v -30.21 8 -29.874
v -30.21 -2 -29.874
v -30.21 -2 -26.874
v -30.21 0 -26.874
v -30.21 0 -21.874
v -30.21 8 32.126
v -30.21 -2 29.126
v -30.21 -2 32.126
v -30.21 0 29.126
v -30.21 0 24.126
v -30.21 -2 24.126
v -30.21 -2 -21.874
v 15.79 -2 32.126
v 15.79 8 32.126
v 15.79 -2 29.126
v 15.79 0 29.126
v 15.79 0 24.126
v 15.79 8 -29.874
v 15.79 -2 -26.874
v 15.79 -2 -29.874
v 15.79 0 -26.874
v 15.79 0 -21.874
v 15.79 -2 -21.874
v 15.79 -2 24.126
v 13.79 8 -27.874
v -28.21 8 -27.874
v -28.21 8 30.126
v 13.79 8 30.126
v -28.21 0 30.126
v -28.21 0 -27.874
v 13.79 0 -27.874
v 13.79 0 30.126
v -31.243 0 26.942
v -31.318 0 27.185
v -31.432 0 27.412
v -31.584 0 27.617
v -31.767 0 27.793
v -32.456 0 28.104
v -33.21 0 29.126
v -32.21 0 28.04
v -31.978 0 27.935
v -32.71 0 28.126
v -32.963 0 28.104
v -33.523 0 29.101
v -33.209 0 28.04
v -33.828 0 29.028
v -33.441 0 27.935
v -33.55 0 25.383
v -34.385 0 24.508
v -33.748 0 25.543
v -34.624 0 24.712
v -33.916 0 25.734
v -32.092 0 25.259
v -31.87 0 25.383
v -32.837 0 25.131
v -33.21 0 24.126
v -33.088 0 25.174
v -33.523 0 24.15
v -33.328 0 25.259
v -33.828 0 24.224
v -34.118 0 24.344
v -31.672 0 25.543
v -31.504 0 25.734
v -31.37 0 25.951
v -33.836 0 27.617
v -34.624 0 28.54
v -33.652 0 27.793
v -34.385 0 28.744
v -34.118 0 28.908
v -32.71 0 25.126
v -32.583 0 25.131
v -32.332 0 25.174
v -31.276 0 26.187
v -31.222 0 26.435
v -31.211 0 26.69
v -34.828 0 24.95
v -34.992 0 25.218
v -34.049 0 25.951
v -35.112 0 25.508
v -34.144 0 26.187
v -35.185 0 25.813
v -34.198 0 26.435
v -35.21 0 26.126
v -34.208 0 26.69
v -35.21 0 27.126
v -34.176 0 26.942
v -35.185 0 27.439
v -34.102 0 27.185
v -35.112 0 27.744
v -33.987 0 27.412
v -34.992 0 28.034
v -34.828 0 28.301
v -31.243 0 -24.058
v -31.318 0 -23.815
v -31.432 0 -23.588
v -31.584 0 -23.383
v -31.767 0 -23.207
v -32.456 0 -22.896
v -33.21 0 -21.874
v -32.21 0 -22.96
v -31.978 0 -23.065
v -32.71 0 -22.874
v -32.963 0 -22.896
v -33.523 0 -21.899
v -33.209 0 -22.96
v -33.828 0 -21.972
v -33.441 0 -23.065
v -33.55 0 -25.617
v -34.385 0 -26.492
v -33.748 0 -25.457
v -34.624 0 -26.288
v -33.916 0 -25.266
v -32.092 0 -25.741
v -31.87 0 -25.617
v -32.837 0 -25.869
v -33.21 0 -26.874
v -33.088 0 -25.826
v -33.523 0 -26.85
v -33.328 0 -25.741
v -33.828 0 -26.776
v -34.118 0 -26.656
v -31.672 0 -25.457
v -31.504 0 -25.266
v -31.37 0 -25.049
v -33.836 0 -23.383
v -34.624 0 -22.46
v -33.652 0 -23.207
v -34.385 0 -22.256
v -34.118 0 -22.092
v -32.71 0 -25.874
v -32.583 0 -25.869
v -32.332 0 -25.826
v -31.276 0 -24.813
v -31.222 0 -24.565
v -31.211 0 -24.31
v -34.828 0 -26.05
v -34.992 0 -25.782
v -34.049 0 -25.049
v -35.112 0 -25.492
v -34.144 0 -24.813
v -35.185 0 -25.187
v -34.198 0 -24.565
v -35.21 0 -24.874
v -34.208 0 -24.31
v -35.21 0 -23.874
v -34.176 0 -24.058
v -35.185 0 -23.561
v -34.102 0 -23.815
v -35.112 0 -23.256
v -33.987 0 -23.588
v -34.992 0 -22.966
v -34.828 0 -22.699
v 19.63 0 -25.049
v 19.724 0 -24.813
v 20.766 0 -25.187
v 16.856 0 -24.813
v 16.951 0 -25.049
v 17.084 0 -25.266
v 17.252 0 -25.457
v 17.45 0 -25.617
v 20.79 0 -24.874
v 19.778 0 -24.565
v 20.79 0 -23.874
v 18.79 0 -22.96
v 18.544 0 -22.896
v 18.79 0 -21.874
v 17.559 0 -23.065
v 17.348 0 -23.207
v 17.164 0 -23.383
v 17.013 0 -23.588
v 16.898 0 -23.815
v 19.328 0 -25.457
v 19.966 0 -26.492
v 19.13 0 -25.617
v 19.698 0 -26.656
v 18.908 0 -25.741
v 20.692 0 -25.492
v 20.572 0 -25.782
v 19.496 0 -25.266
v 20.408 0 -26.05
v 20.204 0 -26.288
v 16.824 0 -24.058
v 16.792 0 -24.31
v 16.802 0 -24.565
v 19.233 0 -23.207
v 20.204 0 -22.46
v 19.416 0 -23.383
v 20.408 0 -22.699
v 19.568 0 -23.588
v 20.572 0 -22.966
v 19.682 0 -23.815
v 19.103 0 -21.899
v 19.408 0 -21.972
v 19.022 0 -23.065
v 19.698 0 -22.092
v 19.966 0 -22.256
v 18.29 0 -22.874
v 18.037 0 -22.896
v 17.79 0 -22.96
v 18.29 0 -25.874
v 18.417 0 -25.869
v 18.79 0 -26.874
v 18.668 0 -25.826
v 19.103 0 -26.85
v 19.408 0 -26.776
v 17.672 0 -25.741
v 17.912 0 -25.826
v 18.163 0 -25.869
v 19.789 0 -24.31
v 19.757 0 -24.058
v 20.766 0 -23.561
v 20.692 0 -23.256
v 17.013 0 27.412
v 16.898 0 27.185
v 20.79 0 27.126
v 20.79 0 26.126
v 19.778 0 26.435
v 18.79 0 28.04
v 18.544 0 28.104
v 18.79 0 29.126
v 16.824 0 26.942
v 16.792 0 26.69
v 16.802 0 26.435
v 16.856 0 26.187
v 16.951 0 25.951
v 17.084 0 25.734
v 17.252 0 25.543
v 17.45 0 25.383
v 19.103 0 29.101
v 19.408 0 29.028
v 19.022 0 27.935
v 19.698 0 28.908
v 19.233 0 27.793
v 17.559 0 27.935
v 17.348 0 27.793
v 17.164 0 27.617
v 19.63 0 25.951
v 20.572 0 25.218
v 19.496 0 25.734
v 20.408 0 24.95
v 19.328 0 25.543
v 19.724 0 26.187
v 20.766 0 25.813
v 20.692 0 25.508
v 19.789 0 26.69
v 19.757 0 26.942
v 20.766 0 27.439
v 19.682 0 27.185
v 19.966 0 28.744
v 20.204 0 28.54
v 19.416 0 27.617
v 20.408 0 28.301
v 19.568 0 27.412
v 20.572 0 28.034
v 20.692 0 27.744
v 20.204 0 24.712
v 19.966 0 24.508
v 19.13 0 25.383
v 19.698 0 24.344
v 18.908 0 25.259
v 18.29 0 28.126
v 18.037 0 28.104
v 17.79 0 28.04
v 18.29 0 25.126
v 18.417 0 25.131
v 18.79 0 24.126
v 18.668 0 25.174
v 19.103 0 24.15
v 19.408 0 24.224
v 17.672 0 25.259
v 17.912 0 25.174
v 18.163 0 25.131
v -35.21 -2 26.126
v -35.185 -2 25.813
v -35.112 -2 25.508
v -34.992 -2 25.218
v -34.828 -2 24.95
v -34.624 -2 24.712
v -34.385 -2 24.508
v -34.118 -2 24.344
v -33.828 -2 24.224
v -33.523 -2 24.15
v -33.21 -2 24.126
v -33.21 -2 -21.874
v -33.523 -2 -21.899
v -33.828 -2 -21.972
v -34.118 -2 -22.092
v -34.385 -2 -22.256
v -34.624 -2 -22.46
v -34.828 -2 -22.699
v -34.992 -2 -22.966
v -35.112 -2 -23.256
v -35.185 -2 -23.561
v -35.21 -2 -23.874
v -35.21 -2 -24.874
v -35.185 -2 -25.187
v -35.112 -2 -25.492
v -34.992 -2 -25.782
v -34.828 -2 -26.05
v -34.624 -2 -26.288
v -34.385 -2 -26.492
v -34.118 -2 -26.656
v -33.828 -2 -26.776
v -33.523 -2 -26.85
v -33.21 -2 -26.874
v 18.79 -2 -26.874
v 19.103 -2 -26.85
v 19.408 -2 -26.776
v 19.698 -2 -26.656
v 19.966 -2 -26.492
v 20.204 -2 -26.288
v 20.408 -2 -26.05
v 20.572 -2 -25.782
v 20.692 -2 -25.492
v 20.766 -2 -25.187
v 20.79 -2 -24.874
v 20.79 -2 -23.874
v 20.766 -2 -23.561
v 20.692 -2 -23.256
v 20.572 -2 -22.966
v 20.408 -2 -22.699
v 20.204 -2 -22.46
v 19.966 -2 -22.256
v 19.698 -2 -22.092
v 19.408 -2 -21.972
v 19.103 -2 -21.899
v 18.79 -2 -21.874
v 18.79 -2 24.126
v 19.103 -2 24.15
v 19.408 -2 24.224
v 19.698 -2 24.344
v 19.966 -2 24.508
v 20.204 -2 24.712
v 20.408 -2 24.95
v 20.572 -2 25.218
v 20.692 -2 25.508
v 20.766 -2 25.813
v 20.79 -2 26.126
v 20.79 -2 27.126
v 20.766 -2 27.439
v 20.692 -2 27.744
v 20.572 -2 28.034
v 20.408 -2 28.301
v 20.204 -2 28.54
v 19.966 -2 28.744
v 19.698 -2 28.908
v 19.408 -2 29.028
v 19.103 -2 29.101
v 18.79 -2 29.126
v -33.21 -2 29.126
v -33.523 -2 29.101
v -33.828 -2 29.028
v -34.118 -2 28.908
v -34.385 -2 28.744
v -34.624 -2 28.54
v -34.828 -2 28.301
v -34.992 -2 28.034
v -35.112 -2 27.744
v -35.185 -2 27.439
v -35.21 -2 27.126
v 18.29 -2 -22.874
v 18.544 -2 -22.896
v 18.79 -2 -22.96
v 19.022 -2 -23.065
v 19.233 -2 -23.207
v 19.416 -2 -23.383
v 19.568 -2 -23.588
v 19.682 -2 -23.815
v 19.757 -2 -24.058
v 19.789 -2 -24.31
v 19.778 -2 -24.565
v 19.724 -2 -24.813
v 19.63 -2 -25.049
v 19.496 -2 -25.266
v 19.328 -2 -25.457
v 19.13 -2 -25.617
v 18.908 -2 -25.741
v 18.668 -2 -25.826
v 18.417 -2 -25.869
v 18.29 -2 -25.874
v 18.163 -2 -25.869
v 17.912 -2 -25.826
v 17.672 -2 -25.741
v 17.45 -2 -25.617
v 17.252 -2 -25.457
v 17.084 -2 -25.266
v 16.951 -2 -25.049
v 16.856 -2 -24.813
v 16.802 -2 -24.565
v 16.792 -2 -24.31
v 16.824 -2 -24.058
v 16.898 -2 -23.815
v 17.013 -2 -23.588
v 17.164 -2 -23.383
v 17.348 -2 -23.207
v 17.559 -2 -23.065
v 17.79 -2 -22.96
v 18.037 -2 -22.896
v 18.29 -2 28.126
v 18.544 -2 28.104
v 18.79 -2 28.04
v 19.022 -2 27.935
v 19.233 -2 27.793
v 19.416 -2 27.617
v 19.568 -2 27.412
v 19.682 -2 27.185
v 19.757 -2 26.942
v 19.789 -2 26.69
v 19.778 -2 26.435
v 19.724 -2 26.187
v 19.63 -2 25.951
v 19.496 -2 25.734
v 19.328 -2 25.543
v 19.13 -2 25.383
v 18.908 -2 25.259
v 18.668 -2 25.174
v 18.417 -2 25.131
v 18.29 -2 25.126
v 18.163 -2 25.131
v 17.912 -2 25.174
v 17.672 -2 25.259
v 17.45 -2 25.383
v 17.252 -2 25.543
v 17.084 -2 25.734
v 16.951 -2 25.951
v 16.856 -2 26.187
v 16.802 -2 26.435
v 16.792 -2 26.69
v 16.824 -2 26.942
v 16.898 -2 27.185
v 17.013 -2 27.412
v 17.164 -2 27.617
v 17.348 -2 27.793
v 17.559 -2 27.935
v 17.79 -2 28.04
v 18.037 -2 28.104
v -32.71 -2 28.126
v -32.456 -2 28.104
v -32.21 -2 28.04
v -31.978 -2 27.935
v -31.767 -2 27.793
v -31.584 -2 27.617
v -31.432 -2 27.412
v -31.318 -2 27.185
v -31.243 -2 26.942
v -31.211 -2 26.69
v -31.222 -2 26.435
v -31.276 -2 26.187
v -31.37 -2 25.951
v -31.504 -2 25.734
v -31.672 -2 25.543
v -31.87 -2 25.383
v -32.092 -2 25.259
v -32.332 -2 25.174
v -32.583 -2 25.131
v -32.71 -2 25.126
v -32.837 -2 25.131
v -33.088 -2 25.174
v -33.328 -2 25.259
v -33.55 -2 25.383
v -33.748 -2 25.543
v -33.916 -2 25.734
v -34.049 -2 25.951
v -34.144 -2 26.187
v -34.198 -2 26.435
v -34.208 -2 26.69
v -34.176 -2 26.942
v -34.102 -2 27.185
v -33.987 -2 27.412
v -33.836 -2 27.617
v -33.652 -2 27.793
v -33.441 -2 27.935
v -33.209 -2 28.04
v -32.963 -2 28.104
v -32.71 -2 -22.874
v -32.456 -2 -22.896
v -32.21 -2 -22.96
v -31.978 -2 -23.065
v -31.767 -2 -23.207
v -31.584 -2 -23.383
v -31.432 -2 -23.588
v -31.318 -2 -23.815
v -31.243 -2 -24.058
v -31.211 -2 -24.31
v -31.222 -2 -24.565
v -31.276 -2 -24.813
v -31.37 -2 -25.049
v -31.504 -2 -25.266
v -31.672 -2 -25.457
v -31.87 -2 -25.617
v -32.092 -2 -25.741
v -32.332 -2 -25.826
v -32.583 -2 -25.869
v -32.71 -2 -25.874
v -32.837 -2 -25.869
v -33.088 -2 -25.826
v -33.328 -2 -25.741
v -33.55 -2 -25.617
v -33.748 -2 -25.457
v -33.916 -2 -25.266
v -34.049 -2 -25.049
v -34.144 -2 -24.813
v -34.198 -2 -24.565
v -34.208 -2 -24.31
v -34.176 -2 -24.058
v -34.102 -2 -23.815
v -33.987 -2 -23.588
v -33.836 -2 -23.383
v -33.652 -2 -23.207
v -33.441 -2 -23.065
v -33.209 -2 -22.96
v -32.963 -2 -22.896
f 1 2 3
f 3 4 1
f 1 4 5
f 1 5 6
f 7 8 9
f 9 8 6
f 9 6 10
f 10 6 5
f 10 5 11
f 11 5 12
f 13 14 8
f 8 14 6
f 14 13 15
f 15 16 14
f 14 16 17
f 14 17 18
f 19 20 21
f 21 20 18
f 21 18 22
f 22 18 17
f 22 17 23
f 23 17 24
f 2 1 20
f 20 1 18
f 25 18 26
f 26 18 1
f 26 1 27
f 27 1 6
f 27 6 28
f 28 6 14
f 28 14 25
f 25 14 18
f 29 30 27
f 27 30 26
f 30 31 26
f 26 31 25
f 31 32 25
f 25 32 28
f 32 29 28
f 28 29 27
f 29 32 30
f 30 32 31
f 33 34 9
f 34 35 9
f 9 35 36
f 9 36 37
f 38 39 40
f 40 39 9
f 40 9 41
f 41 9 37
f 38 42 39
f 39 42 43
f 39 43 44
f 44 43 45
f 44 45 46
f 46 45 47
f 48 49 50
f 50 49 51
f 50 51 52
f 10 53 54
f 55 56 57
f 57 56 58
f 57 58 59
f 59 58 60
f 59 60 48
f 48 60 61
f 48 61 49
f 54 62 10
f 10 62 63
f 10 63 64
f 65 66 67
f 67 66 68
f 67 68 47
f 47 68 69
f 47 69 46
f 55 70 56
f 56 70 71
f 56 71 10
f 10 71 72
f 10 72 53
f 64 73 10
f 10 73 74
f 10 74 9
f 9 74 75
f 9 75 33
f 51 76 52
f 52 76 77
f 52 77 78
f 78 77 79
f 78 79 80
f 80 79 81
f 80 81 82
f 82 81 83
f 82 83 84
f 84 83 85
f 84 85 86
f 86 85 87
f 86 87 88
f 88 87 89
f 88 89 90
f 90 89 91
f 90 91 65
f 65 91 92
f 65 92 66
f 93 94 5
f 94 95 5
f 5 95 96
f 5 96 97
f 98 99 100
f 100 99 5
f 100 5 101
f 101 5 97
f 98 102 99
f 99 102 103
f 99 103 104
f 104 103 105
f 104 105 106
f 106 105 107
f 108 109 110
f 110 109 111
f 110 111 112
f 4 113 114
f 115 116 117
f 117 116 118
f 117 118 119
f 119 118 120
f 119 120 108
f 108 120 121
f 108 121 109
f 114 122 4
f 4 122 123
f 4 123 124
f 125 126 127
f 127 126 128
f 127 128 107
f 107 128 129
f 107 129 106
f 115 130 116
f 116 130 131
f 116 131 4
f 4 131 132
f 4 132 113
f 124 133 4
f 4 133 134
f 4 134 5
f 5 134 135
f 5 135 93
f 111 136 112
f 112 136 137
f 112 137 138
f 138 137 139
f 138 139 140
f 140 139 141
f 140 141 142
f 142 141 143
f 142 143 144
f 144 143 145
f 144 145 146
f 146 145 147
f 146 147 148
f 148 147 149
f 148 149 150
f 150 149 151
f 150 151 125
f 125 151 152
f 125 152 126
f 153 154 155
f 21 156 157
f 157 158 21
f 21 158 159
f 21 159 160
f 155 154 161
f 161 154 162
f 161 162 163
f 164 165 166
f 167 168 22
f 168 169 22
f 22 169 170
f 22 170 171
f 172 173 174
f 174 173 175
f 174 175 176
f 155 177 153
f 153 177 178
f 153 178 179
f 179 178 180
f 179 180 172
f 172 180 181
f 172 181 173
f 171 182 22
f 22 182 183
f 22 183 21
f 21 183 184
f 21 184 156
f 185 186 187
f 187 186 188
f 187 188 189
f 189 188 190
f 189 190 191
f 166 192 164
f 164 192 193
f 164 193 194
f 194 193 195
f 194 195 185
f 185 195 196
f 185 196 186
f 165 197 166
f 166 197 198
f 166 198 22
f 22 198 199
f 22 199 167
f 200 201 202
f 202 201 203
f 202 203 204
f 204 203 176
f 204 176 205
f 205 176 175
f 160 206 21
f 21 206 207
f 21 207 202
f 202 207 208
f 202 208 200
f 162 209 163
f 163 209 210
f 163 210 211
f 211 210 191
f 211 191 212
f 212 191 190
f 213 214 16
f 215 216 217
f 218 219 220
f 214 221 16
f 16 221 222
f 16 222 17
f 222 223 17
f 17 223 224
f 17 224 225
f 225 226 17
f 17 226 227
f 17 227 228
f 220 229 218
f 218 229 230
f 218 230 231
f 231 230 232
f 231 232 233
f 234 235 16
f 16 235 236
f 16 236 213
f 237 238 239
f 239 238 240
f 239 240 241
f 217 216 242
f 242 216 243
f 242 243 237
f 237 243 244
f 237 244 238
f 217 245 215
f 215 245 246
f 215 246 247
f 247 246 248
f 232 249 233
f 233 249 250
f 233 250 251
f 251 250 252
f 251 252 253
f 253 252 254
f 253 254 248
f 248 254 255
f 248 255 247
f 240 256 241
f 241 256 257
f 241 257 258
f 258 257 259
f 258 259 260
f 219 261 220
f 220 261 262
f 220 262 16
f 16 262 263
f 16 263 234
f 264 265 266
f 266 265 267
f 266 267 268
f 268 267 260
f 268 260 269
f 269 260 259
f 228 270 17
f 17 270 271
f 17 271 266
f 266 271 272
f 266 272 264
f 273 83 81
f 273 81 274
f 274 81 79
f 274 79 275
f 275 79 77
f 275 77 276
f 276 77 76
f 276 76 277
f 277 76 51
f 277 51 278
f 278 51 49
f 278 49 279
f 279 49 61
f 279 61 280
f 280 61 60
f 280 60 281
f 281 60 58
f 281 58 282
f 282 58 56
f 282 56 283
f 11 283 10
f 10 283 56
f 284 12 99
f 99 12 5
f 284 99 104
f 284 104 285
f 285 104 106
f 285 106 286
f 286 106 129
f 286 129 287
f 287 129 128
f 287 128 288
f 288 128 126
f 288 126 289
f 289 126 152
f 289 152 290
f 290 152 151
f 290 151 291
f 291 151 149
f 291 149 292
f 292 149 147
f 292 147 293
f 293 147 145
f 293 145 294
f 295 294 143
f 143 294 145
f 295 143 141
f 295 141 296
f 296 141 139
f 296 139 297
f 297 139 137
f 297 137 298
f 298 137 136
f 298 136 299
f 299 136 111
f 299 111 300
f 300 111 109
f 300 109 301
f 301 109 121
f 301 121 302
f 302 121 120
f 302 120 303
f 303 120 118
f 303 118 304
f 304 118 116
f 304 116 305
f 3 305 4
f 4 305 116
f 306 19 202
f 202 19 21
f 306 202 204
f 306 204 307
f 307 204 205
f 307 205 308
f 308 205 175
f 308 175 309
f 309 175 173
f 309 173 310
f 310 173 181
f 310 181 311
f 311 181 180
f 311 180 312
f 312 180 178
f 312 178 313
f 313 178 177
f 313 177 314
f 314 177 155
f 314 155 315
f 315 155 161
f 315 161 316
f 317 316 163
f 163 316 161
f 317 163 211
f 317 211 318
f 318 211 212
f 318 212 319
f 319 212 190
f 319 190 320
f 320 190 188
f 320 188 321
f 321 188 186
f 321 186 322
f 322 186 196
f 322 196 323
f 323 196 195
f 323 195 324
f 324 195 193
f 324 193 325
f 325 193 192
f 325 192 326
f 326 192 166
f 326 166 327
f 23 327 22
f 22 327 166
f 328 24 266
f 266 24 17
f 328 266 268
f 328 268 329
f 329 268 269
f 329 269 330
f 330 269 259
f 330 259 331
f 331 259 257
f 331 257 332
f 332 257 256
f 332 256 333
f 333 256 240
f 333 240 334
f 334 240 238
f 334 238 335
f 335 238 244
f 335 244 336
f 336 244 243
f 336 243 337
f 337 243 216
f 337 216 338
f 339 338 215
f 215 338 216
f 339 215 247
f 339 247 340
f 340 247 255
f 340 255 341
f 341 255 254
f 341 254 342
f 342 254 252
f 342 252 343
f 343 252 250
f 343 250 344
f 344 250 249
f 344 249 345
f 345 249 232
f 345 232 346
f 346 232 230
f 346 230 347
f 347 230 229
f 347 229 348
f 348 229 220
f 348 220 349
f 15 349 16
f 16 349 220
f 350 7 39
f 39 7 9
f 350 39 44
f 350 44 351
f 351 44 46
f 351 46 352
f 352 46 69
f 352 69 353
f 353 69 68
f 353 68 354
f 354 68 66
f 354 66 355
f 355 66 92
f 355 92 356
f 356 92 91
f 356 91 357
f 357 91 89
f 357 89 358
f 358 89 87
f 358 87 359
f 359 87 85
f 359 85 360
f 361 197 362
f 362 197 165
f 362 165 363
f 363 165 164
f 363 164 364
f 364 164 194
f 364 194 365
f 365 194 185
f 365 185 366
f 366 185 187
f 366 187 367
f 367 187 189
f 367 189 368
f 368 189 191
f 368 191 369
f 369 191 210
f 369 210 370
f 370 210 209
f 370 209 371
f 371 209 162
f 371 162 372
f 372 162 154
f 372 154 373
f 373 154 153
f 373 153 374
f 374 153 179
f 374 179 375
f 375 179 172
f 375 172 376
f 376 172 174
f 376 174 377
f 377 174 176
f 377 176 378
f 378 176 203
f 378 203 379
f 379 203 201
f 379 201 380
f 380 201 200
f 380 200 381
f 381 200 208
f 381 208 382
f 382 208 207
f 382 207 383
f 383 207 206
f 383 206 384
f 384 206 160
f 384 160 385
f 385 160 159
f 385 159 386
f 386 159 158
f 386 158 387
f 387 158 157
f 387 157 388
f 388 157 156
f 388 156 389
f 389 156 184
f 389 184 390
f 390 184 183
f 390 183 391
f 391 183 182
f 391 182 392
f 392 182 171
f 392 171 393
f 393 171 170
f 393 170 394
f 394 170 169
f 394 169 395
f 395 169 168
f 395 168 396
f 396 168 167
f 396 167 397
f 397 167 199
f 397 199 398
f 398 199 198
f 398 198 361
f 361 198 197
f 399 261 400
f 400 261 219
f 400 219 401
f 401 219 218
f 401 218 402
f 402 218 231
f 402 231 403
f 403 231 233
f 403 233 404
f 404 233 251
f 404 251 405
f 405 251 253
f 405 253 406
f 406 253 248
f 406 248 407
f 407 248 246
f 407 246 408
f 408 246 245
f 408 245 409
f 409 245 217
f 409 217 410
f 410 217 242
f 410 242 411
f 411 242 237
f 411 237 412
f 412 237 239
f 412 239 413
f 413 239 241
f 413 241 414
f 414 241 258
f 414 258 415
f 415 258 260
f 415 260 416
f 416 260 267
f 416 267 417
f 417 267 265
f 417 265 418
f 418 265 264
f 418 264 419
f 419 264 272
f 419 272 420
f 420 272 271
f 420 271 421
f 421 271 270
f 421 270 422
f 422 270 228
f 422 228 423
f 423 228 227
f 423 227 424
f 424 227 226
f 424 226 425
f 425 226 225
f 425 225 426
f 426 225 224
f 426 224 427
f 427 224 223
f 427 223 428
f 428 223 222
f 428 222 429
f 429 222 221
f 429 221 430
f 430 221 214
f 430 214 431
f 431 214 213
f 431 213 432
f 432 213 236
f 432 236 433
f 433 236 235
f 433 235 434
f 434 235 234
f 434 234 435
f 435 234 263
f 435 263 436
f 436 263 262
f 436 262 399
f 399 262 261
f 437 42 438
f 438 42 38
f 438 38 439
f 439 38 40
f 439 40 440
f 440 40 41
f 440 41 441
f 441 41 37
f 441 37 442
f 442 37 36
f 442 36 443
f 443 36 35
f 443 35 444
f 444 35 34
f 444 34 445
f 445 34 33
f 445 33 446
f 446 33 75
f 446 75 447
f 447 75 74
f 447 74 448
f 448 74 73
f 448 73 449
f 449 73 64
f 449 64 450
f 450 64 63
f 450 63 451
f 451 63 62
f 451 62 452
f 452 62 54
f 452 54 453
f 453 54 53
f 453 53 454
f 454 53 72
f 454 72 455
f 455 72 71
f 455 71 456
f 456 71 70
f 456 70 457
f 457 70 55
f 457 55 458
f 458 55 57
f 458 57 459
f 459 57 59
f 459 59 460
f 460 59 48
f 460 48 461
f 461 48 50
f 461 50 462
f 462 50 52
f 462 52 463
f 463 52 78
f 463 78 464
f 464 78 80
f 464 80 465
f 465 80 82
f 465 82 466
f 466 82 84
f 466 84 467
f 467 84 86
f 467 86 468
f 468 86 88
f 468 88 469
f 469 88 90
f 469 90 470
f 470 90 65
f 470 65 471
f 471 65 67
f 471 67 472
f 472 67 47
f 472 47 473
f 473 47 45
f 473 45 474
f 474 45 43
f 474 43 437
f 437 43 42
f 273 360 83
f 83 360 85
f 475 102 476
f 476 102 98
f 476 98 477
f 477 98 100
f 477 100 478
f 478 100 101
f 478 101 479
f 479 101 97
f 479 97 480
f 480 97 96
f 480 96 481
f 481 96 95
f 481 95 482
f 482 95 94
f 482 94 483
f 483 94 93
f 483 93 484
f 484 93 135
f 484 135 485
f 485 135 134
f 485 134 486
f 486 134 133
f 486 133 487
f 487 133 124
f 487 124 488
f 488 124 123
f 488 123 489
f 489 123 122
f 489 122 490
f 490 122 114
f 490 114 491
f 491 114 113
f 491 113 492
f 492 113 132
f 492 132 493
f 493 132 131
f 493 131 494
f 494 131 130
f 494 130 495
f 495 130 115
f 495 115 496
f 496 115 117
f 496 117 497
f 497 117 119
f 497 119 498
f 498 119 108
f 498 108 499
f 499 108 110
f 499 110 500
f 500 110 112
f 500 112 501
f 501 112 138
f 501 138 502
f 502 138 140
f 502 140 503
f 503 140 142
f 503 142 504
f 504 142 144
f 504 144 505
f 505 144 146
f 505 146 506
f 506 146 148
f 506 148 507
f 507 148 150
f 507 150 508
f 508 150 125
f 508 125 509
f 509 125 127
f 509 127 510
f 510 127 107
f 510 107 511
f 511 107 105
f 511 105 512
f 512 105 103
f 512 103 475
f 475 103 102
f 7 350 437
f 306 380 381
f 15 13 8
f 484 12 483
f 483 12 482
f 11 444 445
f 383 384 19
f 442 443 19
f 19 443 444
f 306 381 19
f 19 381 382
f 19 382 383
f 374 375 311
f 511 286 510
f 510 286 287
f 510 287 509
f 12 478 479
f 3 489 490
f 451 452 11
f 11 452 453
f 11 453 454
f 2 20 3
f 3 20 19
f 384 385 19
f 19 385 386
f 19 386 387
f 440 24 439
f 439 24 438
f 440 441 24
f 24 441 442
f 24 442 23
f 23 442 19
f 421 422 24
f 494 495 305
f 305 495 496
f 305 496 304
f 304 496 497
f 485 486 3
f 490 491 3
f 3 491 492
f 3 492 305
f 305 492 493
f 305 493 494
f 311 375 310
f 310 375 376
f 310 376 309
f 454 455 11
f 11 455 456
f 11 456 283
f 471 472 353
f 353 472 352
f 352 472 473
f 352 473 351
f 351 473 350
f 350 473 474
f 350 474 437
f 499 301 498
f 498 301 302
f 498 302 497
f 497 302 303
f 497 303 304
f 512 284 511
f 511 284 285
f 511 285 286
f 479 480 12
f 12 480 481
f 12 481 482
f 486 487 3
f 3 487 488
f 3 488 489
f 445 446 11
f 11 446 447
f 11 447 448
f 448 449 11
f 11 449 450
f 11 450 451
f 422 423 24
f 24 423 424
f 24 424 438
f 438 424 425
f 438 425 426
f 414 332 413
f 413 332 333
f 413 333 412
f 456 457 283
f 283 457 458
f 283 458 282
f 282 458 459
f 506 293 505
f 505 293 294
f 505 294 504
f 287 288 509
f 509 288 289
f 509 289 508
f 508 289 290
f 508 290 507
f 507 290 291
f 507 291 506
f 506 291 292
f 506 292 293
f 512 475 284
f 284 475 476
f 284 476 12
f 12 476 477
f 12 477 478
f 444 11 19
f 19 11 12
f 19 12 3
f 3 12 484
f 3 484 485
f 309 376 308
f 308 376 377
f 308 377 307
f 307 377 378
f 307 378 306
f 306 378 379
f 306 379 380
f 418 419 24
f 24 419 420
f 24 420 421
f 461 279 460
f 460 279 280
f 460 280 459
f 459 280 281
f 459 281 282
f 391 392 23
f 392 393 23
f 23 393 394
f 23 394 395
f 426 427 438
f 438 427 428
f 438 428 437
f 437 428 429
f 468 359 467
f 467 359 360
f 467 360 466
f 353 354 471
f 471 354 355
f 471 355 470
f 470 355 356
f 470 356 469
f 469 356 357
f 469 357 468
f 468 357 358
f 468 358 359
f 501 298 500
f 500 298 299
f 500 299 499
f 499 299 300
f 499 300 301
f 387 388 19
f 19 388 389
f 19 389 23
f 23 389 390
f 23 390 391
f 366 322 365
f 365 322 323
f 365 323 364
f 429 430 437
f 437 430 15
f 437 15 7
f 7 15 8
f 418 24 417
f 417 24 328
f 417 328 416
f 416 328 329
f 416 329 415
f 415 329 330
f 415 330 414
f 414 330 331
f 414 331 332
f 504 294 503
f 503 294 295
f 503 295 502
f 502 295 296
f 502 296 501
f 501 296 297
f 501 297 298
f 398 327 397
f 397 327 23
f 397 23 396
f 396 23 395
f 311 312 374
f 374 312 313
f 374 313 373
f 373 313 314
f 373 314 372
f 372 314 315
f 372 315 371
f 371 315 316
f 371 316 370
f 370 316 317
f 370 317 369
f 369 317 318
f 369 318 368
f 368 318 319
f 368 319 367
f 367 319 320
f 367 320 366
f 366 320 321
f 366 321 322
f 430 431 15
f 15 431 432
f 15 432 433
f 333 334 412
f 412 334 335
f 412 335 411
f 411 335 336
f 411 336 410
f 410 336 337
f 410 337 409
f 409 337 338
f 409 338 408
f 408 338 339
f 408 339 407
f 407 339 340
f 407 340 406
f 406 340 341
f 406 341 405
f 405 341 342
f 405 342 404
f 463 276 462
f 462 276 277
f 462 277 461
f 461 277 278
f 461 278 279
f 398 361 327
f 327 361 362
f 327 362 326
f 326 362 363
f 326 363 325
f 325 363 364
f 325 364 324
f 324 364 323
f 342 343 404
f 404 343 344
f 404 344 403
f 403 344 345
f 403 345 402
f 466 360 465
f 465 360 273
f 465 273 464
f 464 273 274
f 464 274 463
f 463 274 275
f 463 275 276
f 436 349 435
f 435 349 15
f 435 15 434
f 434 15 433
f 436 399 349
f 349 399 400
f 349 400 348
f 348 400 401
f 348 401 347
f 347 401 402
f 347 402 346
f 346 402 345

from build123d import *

# Parameters (mm, degrees)
SKETCH_1_W          = 46
SKETCH_1_H          = 62
EXTRUDE_1_DEPTH     = 8
SKETCH_2_W          = 42
SKETCH_2_H          = 58
CUT_EXTRUDE_1_DEPTH = 8
SKETCH_3_R          = 1.5
SKETCH_3_W          = 42
SKETCH_3_H          = 58
EXTRUDE_2_DEPTH     = 2


with BuildPart() as part:
    # 草图1 → 凸台-拉伸1 (new body)
    with BuildSketch(Plane(origin=(0, 0, 0), x_dir=(1, 0, 0), z_dir=(0, 1, 0))):
        with Locations((-7.20979021, -1.125874126)):
            Rectangle(SKETCH_1_W, SKETCH_1_H)
    extrude(amount=EXTRUDE_1_DEPTH)

    # 草图2 → 切除-拉伸1 (cut)
    with BuildSketch(Plane(origin=(0, 8, 0), x_dir=(1, 0, 0), z_dir=(0, 1, 0))):
        with Locations((-7.20979021, -1.125874126)):
            Rectangle(SKETCH_2_W, SKETCH_2_H)
    extrude(amount=-CUT_EXTRUDE_1_DEPTH, mode=Mode.SUBTRACT)

    # 草图3 → 凸台-拉伸2 (add)
    # profile 1 of 6: a face of its own
    with BuildSketch(Plane.XZ):
        with BuildLine():
            Line((-30.20979021, 24.125874126), (-30.20979021, 29.125874126))
            Line((-30.20979021, 29.125874126), (-33.20979021, 29.125874126))
            ThreePointArc((-33.20979021, 29.125874126), (-34.624003772, 28.540087688), (-35.20979021, 27.125874126))
            Line((-35.20979021, 27.125874126), (-35.20979021, 26.125874126))
            ThreePointArc((-35.20979021, 26.125874126), (-34.624003772, 24.711660564), (-33.20979021, 24.125874126))
            Line((-33.20979021, 24.125874126), (-30.20979021, 24.125874126))
        make_face()
        with Locations(Location((-32.70979021, 26.625874126, 0), (0, 0, 270))):
            Circle(SKETCH_3_R, mode=Mode.SUBTRACT)
    # profile 2 of 6: a face of its own
    with BuildSketch(Plane.XZ):
        Polygon((15.79020979, 32.125874126), (-30.20979021, 32.125874126), (-30.20979021, 29.125874126), (-30.20979021, 24.125874126), (-30.20979021, -21.874125874), (-30.20979021, -26.874125874), (-30.20979021, -29.874125874), (15.79020979, -29.874125874), (15.79020979, -26.874125874), (15.79020979, -21.874125874), (15.79020979, 24.125874126), (15.79020979, 29.125874126), align=None)
        with Locations((-7.20979021, 1.125874126)):
            Rectangle(SKETCH_3_W, SKETCH_3_H, mode=Mode.SUBTRACT)
    # profile 3 of 6: a face of its own
    with BuildSketch(Plane.XZ):
        with BuildLine():
            Line((18.79020979, 29.125874126), (15.79020979, 29.125874126))
            Line((15.79020979, 29.125874126), (15.79020979, 24.125874126))
            Line((15.79020979, 24.125874126), (18.79020979, 24.125874126))
            ThreePointArc((18.79020979, 24.125874126), (20.204423353, 24.711660564), (20.79020979, 26.125874126))
            Line((20.79020979, 26.125874126), (20.79020979, 27.125874126))
            ThreePointArc((20.79020979, 27.125874126), (20.204423353, 28.540087688), (18.79020979, 29.125874126))
        make_face()
        with Locations(Location((18.29020979, 26.625874126, 0), (0, 0, 270))):
            Circle(SKETCH_3_R, mode=Mode.SUBTRACT)
    # profile 4 of 6: a face of its own
    with BuildSketch(Plane.XZ):
        with BuildLine():
            Line((-30.20979021, -26.874125874), (-30.20979021, -21.874125874))
            Line((-30.20979021, -21.874125874), (-33.20979021, -21.874125874))
            ThreePointArc((-33.20979021, -21.874125874), (-34.624003772, -22.459912312), (-35.20979021, -23.874125874))
            Line((-35.20979021, -23.874125874), (-35.20979021, -24.874125874))
            ThreePointArc((-35.20979021, -24.874125874), (-34.624003772, -26.288339436), (-33.20979021, -26.874125874))
            Line((-33.20979021, -26.874125874), (-30.20979021, -26.874125874))
        make_face()
        with Locations(Location((-32.70979021, -24.374125874, 0), (0, 0, 270))):
            Circle(SKETCH_3_R, mode=Mode.SUBTRACT)
    # profile 5 of 6: a face of its own
    with BuildSketch(Plane.XZ):
        with BuildLine():
            Line((18.79020979, -21.874125874), (15.79020979, -21.874125874))
            Line((15.79020979, -21.874125874), (15.79020979, -26.874125874))
            Line((15.79020979, -26.874125874), (18.79020979, -26.874125874))
            ThreePointArc((18.79020979, -26.874125874), (20.204423353, -26.288339436), (20.79020979, -24.874125874))
            Line((20.79020979, -24.874125874), (20.79020979, -23.874125874))
            ThreePointArc((20.79020979, -23.874125874), (20.204423353, -22.459912312), (18.79020979, -21.874125874))
        make_face()
        with Locations(Location((18.29020979, -24.374125874, 0), (0, 0, 270))):
            Circle(SKETCH_3_R, mode=Mode.SUBTRACT)
    # profile 6 of 6: a face of its own
    with BuildSketch(Plane.XZ):
        with Locations((-7.20979021, 1.125874126)):
            Rectangle(SKETCH_3_W, SKETCH_3_H)
    extrude(amount=EXTRUDE_2_DEPTH)


solid = part.part
